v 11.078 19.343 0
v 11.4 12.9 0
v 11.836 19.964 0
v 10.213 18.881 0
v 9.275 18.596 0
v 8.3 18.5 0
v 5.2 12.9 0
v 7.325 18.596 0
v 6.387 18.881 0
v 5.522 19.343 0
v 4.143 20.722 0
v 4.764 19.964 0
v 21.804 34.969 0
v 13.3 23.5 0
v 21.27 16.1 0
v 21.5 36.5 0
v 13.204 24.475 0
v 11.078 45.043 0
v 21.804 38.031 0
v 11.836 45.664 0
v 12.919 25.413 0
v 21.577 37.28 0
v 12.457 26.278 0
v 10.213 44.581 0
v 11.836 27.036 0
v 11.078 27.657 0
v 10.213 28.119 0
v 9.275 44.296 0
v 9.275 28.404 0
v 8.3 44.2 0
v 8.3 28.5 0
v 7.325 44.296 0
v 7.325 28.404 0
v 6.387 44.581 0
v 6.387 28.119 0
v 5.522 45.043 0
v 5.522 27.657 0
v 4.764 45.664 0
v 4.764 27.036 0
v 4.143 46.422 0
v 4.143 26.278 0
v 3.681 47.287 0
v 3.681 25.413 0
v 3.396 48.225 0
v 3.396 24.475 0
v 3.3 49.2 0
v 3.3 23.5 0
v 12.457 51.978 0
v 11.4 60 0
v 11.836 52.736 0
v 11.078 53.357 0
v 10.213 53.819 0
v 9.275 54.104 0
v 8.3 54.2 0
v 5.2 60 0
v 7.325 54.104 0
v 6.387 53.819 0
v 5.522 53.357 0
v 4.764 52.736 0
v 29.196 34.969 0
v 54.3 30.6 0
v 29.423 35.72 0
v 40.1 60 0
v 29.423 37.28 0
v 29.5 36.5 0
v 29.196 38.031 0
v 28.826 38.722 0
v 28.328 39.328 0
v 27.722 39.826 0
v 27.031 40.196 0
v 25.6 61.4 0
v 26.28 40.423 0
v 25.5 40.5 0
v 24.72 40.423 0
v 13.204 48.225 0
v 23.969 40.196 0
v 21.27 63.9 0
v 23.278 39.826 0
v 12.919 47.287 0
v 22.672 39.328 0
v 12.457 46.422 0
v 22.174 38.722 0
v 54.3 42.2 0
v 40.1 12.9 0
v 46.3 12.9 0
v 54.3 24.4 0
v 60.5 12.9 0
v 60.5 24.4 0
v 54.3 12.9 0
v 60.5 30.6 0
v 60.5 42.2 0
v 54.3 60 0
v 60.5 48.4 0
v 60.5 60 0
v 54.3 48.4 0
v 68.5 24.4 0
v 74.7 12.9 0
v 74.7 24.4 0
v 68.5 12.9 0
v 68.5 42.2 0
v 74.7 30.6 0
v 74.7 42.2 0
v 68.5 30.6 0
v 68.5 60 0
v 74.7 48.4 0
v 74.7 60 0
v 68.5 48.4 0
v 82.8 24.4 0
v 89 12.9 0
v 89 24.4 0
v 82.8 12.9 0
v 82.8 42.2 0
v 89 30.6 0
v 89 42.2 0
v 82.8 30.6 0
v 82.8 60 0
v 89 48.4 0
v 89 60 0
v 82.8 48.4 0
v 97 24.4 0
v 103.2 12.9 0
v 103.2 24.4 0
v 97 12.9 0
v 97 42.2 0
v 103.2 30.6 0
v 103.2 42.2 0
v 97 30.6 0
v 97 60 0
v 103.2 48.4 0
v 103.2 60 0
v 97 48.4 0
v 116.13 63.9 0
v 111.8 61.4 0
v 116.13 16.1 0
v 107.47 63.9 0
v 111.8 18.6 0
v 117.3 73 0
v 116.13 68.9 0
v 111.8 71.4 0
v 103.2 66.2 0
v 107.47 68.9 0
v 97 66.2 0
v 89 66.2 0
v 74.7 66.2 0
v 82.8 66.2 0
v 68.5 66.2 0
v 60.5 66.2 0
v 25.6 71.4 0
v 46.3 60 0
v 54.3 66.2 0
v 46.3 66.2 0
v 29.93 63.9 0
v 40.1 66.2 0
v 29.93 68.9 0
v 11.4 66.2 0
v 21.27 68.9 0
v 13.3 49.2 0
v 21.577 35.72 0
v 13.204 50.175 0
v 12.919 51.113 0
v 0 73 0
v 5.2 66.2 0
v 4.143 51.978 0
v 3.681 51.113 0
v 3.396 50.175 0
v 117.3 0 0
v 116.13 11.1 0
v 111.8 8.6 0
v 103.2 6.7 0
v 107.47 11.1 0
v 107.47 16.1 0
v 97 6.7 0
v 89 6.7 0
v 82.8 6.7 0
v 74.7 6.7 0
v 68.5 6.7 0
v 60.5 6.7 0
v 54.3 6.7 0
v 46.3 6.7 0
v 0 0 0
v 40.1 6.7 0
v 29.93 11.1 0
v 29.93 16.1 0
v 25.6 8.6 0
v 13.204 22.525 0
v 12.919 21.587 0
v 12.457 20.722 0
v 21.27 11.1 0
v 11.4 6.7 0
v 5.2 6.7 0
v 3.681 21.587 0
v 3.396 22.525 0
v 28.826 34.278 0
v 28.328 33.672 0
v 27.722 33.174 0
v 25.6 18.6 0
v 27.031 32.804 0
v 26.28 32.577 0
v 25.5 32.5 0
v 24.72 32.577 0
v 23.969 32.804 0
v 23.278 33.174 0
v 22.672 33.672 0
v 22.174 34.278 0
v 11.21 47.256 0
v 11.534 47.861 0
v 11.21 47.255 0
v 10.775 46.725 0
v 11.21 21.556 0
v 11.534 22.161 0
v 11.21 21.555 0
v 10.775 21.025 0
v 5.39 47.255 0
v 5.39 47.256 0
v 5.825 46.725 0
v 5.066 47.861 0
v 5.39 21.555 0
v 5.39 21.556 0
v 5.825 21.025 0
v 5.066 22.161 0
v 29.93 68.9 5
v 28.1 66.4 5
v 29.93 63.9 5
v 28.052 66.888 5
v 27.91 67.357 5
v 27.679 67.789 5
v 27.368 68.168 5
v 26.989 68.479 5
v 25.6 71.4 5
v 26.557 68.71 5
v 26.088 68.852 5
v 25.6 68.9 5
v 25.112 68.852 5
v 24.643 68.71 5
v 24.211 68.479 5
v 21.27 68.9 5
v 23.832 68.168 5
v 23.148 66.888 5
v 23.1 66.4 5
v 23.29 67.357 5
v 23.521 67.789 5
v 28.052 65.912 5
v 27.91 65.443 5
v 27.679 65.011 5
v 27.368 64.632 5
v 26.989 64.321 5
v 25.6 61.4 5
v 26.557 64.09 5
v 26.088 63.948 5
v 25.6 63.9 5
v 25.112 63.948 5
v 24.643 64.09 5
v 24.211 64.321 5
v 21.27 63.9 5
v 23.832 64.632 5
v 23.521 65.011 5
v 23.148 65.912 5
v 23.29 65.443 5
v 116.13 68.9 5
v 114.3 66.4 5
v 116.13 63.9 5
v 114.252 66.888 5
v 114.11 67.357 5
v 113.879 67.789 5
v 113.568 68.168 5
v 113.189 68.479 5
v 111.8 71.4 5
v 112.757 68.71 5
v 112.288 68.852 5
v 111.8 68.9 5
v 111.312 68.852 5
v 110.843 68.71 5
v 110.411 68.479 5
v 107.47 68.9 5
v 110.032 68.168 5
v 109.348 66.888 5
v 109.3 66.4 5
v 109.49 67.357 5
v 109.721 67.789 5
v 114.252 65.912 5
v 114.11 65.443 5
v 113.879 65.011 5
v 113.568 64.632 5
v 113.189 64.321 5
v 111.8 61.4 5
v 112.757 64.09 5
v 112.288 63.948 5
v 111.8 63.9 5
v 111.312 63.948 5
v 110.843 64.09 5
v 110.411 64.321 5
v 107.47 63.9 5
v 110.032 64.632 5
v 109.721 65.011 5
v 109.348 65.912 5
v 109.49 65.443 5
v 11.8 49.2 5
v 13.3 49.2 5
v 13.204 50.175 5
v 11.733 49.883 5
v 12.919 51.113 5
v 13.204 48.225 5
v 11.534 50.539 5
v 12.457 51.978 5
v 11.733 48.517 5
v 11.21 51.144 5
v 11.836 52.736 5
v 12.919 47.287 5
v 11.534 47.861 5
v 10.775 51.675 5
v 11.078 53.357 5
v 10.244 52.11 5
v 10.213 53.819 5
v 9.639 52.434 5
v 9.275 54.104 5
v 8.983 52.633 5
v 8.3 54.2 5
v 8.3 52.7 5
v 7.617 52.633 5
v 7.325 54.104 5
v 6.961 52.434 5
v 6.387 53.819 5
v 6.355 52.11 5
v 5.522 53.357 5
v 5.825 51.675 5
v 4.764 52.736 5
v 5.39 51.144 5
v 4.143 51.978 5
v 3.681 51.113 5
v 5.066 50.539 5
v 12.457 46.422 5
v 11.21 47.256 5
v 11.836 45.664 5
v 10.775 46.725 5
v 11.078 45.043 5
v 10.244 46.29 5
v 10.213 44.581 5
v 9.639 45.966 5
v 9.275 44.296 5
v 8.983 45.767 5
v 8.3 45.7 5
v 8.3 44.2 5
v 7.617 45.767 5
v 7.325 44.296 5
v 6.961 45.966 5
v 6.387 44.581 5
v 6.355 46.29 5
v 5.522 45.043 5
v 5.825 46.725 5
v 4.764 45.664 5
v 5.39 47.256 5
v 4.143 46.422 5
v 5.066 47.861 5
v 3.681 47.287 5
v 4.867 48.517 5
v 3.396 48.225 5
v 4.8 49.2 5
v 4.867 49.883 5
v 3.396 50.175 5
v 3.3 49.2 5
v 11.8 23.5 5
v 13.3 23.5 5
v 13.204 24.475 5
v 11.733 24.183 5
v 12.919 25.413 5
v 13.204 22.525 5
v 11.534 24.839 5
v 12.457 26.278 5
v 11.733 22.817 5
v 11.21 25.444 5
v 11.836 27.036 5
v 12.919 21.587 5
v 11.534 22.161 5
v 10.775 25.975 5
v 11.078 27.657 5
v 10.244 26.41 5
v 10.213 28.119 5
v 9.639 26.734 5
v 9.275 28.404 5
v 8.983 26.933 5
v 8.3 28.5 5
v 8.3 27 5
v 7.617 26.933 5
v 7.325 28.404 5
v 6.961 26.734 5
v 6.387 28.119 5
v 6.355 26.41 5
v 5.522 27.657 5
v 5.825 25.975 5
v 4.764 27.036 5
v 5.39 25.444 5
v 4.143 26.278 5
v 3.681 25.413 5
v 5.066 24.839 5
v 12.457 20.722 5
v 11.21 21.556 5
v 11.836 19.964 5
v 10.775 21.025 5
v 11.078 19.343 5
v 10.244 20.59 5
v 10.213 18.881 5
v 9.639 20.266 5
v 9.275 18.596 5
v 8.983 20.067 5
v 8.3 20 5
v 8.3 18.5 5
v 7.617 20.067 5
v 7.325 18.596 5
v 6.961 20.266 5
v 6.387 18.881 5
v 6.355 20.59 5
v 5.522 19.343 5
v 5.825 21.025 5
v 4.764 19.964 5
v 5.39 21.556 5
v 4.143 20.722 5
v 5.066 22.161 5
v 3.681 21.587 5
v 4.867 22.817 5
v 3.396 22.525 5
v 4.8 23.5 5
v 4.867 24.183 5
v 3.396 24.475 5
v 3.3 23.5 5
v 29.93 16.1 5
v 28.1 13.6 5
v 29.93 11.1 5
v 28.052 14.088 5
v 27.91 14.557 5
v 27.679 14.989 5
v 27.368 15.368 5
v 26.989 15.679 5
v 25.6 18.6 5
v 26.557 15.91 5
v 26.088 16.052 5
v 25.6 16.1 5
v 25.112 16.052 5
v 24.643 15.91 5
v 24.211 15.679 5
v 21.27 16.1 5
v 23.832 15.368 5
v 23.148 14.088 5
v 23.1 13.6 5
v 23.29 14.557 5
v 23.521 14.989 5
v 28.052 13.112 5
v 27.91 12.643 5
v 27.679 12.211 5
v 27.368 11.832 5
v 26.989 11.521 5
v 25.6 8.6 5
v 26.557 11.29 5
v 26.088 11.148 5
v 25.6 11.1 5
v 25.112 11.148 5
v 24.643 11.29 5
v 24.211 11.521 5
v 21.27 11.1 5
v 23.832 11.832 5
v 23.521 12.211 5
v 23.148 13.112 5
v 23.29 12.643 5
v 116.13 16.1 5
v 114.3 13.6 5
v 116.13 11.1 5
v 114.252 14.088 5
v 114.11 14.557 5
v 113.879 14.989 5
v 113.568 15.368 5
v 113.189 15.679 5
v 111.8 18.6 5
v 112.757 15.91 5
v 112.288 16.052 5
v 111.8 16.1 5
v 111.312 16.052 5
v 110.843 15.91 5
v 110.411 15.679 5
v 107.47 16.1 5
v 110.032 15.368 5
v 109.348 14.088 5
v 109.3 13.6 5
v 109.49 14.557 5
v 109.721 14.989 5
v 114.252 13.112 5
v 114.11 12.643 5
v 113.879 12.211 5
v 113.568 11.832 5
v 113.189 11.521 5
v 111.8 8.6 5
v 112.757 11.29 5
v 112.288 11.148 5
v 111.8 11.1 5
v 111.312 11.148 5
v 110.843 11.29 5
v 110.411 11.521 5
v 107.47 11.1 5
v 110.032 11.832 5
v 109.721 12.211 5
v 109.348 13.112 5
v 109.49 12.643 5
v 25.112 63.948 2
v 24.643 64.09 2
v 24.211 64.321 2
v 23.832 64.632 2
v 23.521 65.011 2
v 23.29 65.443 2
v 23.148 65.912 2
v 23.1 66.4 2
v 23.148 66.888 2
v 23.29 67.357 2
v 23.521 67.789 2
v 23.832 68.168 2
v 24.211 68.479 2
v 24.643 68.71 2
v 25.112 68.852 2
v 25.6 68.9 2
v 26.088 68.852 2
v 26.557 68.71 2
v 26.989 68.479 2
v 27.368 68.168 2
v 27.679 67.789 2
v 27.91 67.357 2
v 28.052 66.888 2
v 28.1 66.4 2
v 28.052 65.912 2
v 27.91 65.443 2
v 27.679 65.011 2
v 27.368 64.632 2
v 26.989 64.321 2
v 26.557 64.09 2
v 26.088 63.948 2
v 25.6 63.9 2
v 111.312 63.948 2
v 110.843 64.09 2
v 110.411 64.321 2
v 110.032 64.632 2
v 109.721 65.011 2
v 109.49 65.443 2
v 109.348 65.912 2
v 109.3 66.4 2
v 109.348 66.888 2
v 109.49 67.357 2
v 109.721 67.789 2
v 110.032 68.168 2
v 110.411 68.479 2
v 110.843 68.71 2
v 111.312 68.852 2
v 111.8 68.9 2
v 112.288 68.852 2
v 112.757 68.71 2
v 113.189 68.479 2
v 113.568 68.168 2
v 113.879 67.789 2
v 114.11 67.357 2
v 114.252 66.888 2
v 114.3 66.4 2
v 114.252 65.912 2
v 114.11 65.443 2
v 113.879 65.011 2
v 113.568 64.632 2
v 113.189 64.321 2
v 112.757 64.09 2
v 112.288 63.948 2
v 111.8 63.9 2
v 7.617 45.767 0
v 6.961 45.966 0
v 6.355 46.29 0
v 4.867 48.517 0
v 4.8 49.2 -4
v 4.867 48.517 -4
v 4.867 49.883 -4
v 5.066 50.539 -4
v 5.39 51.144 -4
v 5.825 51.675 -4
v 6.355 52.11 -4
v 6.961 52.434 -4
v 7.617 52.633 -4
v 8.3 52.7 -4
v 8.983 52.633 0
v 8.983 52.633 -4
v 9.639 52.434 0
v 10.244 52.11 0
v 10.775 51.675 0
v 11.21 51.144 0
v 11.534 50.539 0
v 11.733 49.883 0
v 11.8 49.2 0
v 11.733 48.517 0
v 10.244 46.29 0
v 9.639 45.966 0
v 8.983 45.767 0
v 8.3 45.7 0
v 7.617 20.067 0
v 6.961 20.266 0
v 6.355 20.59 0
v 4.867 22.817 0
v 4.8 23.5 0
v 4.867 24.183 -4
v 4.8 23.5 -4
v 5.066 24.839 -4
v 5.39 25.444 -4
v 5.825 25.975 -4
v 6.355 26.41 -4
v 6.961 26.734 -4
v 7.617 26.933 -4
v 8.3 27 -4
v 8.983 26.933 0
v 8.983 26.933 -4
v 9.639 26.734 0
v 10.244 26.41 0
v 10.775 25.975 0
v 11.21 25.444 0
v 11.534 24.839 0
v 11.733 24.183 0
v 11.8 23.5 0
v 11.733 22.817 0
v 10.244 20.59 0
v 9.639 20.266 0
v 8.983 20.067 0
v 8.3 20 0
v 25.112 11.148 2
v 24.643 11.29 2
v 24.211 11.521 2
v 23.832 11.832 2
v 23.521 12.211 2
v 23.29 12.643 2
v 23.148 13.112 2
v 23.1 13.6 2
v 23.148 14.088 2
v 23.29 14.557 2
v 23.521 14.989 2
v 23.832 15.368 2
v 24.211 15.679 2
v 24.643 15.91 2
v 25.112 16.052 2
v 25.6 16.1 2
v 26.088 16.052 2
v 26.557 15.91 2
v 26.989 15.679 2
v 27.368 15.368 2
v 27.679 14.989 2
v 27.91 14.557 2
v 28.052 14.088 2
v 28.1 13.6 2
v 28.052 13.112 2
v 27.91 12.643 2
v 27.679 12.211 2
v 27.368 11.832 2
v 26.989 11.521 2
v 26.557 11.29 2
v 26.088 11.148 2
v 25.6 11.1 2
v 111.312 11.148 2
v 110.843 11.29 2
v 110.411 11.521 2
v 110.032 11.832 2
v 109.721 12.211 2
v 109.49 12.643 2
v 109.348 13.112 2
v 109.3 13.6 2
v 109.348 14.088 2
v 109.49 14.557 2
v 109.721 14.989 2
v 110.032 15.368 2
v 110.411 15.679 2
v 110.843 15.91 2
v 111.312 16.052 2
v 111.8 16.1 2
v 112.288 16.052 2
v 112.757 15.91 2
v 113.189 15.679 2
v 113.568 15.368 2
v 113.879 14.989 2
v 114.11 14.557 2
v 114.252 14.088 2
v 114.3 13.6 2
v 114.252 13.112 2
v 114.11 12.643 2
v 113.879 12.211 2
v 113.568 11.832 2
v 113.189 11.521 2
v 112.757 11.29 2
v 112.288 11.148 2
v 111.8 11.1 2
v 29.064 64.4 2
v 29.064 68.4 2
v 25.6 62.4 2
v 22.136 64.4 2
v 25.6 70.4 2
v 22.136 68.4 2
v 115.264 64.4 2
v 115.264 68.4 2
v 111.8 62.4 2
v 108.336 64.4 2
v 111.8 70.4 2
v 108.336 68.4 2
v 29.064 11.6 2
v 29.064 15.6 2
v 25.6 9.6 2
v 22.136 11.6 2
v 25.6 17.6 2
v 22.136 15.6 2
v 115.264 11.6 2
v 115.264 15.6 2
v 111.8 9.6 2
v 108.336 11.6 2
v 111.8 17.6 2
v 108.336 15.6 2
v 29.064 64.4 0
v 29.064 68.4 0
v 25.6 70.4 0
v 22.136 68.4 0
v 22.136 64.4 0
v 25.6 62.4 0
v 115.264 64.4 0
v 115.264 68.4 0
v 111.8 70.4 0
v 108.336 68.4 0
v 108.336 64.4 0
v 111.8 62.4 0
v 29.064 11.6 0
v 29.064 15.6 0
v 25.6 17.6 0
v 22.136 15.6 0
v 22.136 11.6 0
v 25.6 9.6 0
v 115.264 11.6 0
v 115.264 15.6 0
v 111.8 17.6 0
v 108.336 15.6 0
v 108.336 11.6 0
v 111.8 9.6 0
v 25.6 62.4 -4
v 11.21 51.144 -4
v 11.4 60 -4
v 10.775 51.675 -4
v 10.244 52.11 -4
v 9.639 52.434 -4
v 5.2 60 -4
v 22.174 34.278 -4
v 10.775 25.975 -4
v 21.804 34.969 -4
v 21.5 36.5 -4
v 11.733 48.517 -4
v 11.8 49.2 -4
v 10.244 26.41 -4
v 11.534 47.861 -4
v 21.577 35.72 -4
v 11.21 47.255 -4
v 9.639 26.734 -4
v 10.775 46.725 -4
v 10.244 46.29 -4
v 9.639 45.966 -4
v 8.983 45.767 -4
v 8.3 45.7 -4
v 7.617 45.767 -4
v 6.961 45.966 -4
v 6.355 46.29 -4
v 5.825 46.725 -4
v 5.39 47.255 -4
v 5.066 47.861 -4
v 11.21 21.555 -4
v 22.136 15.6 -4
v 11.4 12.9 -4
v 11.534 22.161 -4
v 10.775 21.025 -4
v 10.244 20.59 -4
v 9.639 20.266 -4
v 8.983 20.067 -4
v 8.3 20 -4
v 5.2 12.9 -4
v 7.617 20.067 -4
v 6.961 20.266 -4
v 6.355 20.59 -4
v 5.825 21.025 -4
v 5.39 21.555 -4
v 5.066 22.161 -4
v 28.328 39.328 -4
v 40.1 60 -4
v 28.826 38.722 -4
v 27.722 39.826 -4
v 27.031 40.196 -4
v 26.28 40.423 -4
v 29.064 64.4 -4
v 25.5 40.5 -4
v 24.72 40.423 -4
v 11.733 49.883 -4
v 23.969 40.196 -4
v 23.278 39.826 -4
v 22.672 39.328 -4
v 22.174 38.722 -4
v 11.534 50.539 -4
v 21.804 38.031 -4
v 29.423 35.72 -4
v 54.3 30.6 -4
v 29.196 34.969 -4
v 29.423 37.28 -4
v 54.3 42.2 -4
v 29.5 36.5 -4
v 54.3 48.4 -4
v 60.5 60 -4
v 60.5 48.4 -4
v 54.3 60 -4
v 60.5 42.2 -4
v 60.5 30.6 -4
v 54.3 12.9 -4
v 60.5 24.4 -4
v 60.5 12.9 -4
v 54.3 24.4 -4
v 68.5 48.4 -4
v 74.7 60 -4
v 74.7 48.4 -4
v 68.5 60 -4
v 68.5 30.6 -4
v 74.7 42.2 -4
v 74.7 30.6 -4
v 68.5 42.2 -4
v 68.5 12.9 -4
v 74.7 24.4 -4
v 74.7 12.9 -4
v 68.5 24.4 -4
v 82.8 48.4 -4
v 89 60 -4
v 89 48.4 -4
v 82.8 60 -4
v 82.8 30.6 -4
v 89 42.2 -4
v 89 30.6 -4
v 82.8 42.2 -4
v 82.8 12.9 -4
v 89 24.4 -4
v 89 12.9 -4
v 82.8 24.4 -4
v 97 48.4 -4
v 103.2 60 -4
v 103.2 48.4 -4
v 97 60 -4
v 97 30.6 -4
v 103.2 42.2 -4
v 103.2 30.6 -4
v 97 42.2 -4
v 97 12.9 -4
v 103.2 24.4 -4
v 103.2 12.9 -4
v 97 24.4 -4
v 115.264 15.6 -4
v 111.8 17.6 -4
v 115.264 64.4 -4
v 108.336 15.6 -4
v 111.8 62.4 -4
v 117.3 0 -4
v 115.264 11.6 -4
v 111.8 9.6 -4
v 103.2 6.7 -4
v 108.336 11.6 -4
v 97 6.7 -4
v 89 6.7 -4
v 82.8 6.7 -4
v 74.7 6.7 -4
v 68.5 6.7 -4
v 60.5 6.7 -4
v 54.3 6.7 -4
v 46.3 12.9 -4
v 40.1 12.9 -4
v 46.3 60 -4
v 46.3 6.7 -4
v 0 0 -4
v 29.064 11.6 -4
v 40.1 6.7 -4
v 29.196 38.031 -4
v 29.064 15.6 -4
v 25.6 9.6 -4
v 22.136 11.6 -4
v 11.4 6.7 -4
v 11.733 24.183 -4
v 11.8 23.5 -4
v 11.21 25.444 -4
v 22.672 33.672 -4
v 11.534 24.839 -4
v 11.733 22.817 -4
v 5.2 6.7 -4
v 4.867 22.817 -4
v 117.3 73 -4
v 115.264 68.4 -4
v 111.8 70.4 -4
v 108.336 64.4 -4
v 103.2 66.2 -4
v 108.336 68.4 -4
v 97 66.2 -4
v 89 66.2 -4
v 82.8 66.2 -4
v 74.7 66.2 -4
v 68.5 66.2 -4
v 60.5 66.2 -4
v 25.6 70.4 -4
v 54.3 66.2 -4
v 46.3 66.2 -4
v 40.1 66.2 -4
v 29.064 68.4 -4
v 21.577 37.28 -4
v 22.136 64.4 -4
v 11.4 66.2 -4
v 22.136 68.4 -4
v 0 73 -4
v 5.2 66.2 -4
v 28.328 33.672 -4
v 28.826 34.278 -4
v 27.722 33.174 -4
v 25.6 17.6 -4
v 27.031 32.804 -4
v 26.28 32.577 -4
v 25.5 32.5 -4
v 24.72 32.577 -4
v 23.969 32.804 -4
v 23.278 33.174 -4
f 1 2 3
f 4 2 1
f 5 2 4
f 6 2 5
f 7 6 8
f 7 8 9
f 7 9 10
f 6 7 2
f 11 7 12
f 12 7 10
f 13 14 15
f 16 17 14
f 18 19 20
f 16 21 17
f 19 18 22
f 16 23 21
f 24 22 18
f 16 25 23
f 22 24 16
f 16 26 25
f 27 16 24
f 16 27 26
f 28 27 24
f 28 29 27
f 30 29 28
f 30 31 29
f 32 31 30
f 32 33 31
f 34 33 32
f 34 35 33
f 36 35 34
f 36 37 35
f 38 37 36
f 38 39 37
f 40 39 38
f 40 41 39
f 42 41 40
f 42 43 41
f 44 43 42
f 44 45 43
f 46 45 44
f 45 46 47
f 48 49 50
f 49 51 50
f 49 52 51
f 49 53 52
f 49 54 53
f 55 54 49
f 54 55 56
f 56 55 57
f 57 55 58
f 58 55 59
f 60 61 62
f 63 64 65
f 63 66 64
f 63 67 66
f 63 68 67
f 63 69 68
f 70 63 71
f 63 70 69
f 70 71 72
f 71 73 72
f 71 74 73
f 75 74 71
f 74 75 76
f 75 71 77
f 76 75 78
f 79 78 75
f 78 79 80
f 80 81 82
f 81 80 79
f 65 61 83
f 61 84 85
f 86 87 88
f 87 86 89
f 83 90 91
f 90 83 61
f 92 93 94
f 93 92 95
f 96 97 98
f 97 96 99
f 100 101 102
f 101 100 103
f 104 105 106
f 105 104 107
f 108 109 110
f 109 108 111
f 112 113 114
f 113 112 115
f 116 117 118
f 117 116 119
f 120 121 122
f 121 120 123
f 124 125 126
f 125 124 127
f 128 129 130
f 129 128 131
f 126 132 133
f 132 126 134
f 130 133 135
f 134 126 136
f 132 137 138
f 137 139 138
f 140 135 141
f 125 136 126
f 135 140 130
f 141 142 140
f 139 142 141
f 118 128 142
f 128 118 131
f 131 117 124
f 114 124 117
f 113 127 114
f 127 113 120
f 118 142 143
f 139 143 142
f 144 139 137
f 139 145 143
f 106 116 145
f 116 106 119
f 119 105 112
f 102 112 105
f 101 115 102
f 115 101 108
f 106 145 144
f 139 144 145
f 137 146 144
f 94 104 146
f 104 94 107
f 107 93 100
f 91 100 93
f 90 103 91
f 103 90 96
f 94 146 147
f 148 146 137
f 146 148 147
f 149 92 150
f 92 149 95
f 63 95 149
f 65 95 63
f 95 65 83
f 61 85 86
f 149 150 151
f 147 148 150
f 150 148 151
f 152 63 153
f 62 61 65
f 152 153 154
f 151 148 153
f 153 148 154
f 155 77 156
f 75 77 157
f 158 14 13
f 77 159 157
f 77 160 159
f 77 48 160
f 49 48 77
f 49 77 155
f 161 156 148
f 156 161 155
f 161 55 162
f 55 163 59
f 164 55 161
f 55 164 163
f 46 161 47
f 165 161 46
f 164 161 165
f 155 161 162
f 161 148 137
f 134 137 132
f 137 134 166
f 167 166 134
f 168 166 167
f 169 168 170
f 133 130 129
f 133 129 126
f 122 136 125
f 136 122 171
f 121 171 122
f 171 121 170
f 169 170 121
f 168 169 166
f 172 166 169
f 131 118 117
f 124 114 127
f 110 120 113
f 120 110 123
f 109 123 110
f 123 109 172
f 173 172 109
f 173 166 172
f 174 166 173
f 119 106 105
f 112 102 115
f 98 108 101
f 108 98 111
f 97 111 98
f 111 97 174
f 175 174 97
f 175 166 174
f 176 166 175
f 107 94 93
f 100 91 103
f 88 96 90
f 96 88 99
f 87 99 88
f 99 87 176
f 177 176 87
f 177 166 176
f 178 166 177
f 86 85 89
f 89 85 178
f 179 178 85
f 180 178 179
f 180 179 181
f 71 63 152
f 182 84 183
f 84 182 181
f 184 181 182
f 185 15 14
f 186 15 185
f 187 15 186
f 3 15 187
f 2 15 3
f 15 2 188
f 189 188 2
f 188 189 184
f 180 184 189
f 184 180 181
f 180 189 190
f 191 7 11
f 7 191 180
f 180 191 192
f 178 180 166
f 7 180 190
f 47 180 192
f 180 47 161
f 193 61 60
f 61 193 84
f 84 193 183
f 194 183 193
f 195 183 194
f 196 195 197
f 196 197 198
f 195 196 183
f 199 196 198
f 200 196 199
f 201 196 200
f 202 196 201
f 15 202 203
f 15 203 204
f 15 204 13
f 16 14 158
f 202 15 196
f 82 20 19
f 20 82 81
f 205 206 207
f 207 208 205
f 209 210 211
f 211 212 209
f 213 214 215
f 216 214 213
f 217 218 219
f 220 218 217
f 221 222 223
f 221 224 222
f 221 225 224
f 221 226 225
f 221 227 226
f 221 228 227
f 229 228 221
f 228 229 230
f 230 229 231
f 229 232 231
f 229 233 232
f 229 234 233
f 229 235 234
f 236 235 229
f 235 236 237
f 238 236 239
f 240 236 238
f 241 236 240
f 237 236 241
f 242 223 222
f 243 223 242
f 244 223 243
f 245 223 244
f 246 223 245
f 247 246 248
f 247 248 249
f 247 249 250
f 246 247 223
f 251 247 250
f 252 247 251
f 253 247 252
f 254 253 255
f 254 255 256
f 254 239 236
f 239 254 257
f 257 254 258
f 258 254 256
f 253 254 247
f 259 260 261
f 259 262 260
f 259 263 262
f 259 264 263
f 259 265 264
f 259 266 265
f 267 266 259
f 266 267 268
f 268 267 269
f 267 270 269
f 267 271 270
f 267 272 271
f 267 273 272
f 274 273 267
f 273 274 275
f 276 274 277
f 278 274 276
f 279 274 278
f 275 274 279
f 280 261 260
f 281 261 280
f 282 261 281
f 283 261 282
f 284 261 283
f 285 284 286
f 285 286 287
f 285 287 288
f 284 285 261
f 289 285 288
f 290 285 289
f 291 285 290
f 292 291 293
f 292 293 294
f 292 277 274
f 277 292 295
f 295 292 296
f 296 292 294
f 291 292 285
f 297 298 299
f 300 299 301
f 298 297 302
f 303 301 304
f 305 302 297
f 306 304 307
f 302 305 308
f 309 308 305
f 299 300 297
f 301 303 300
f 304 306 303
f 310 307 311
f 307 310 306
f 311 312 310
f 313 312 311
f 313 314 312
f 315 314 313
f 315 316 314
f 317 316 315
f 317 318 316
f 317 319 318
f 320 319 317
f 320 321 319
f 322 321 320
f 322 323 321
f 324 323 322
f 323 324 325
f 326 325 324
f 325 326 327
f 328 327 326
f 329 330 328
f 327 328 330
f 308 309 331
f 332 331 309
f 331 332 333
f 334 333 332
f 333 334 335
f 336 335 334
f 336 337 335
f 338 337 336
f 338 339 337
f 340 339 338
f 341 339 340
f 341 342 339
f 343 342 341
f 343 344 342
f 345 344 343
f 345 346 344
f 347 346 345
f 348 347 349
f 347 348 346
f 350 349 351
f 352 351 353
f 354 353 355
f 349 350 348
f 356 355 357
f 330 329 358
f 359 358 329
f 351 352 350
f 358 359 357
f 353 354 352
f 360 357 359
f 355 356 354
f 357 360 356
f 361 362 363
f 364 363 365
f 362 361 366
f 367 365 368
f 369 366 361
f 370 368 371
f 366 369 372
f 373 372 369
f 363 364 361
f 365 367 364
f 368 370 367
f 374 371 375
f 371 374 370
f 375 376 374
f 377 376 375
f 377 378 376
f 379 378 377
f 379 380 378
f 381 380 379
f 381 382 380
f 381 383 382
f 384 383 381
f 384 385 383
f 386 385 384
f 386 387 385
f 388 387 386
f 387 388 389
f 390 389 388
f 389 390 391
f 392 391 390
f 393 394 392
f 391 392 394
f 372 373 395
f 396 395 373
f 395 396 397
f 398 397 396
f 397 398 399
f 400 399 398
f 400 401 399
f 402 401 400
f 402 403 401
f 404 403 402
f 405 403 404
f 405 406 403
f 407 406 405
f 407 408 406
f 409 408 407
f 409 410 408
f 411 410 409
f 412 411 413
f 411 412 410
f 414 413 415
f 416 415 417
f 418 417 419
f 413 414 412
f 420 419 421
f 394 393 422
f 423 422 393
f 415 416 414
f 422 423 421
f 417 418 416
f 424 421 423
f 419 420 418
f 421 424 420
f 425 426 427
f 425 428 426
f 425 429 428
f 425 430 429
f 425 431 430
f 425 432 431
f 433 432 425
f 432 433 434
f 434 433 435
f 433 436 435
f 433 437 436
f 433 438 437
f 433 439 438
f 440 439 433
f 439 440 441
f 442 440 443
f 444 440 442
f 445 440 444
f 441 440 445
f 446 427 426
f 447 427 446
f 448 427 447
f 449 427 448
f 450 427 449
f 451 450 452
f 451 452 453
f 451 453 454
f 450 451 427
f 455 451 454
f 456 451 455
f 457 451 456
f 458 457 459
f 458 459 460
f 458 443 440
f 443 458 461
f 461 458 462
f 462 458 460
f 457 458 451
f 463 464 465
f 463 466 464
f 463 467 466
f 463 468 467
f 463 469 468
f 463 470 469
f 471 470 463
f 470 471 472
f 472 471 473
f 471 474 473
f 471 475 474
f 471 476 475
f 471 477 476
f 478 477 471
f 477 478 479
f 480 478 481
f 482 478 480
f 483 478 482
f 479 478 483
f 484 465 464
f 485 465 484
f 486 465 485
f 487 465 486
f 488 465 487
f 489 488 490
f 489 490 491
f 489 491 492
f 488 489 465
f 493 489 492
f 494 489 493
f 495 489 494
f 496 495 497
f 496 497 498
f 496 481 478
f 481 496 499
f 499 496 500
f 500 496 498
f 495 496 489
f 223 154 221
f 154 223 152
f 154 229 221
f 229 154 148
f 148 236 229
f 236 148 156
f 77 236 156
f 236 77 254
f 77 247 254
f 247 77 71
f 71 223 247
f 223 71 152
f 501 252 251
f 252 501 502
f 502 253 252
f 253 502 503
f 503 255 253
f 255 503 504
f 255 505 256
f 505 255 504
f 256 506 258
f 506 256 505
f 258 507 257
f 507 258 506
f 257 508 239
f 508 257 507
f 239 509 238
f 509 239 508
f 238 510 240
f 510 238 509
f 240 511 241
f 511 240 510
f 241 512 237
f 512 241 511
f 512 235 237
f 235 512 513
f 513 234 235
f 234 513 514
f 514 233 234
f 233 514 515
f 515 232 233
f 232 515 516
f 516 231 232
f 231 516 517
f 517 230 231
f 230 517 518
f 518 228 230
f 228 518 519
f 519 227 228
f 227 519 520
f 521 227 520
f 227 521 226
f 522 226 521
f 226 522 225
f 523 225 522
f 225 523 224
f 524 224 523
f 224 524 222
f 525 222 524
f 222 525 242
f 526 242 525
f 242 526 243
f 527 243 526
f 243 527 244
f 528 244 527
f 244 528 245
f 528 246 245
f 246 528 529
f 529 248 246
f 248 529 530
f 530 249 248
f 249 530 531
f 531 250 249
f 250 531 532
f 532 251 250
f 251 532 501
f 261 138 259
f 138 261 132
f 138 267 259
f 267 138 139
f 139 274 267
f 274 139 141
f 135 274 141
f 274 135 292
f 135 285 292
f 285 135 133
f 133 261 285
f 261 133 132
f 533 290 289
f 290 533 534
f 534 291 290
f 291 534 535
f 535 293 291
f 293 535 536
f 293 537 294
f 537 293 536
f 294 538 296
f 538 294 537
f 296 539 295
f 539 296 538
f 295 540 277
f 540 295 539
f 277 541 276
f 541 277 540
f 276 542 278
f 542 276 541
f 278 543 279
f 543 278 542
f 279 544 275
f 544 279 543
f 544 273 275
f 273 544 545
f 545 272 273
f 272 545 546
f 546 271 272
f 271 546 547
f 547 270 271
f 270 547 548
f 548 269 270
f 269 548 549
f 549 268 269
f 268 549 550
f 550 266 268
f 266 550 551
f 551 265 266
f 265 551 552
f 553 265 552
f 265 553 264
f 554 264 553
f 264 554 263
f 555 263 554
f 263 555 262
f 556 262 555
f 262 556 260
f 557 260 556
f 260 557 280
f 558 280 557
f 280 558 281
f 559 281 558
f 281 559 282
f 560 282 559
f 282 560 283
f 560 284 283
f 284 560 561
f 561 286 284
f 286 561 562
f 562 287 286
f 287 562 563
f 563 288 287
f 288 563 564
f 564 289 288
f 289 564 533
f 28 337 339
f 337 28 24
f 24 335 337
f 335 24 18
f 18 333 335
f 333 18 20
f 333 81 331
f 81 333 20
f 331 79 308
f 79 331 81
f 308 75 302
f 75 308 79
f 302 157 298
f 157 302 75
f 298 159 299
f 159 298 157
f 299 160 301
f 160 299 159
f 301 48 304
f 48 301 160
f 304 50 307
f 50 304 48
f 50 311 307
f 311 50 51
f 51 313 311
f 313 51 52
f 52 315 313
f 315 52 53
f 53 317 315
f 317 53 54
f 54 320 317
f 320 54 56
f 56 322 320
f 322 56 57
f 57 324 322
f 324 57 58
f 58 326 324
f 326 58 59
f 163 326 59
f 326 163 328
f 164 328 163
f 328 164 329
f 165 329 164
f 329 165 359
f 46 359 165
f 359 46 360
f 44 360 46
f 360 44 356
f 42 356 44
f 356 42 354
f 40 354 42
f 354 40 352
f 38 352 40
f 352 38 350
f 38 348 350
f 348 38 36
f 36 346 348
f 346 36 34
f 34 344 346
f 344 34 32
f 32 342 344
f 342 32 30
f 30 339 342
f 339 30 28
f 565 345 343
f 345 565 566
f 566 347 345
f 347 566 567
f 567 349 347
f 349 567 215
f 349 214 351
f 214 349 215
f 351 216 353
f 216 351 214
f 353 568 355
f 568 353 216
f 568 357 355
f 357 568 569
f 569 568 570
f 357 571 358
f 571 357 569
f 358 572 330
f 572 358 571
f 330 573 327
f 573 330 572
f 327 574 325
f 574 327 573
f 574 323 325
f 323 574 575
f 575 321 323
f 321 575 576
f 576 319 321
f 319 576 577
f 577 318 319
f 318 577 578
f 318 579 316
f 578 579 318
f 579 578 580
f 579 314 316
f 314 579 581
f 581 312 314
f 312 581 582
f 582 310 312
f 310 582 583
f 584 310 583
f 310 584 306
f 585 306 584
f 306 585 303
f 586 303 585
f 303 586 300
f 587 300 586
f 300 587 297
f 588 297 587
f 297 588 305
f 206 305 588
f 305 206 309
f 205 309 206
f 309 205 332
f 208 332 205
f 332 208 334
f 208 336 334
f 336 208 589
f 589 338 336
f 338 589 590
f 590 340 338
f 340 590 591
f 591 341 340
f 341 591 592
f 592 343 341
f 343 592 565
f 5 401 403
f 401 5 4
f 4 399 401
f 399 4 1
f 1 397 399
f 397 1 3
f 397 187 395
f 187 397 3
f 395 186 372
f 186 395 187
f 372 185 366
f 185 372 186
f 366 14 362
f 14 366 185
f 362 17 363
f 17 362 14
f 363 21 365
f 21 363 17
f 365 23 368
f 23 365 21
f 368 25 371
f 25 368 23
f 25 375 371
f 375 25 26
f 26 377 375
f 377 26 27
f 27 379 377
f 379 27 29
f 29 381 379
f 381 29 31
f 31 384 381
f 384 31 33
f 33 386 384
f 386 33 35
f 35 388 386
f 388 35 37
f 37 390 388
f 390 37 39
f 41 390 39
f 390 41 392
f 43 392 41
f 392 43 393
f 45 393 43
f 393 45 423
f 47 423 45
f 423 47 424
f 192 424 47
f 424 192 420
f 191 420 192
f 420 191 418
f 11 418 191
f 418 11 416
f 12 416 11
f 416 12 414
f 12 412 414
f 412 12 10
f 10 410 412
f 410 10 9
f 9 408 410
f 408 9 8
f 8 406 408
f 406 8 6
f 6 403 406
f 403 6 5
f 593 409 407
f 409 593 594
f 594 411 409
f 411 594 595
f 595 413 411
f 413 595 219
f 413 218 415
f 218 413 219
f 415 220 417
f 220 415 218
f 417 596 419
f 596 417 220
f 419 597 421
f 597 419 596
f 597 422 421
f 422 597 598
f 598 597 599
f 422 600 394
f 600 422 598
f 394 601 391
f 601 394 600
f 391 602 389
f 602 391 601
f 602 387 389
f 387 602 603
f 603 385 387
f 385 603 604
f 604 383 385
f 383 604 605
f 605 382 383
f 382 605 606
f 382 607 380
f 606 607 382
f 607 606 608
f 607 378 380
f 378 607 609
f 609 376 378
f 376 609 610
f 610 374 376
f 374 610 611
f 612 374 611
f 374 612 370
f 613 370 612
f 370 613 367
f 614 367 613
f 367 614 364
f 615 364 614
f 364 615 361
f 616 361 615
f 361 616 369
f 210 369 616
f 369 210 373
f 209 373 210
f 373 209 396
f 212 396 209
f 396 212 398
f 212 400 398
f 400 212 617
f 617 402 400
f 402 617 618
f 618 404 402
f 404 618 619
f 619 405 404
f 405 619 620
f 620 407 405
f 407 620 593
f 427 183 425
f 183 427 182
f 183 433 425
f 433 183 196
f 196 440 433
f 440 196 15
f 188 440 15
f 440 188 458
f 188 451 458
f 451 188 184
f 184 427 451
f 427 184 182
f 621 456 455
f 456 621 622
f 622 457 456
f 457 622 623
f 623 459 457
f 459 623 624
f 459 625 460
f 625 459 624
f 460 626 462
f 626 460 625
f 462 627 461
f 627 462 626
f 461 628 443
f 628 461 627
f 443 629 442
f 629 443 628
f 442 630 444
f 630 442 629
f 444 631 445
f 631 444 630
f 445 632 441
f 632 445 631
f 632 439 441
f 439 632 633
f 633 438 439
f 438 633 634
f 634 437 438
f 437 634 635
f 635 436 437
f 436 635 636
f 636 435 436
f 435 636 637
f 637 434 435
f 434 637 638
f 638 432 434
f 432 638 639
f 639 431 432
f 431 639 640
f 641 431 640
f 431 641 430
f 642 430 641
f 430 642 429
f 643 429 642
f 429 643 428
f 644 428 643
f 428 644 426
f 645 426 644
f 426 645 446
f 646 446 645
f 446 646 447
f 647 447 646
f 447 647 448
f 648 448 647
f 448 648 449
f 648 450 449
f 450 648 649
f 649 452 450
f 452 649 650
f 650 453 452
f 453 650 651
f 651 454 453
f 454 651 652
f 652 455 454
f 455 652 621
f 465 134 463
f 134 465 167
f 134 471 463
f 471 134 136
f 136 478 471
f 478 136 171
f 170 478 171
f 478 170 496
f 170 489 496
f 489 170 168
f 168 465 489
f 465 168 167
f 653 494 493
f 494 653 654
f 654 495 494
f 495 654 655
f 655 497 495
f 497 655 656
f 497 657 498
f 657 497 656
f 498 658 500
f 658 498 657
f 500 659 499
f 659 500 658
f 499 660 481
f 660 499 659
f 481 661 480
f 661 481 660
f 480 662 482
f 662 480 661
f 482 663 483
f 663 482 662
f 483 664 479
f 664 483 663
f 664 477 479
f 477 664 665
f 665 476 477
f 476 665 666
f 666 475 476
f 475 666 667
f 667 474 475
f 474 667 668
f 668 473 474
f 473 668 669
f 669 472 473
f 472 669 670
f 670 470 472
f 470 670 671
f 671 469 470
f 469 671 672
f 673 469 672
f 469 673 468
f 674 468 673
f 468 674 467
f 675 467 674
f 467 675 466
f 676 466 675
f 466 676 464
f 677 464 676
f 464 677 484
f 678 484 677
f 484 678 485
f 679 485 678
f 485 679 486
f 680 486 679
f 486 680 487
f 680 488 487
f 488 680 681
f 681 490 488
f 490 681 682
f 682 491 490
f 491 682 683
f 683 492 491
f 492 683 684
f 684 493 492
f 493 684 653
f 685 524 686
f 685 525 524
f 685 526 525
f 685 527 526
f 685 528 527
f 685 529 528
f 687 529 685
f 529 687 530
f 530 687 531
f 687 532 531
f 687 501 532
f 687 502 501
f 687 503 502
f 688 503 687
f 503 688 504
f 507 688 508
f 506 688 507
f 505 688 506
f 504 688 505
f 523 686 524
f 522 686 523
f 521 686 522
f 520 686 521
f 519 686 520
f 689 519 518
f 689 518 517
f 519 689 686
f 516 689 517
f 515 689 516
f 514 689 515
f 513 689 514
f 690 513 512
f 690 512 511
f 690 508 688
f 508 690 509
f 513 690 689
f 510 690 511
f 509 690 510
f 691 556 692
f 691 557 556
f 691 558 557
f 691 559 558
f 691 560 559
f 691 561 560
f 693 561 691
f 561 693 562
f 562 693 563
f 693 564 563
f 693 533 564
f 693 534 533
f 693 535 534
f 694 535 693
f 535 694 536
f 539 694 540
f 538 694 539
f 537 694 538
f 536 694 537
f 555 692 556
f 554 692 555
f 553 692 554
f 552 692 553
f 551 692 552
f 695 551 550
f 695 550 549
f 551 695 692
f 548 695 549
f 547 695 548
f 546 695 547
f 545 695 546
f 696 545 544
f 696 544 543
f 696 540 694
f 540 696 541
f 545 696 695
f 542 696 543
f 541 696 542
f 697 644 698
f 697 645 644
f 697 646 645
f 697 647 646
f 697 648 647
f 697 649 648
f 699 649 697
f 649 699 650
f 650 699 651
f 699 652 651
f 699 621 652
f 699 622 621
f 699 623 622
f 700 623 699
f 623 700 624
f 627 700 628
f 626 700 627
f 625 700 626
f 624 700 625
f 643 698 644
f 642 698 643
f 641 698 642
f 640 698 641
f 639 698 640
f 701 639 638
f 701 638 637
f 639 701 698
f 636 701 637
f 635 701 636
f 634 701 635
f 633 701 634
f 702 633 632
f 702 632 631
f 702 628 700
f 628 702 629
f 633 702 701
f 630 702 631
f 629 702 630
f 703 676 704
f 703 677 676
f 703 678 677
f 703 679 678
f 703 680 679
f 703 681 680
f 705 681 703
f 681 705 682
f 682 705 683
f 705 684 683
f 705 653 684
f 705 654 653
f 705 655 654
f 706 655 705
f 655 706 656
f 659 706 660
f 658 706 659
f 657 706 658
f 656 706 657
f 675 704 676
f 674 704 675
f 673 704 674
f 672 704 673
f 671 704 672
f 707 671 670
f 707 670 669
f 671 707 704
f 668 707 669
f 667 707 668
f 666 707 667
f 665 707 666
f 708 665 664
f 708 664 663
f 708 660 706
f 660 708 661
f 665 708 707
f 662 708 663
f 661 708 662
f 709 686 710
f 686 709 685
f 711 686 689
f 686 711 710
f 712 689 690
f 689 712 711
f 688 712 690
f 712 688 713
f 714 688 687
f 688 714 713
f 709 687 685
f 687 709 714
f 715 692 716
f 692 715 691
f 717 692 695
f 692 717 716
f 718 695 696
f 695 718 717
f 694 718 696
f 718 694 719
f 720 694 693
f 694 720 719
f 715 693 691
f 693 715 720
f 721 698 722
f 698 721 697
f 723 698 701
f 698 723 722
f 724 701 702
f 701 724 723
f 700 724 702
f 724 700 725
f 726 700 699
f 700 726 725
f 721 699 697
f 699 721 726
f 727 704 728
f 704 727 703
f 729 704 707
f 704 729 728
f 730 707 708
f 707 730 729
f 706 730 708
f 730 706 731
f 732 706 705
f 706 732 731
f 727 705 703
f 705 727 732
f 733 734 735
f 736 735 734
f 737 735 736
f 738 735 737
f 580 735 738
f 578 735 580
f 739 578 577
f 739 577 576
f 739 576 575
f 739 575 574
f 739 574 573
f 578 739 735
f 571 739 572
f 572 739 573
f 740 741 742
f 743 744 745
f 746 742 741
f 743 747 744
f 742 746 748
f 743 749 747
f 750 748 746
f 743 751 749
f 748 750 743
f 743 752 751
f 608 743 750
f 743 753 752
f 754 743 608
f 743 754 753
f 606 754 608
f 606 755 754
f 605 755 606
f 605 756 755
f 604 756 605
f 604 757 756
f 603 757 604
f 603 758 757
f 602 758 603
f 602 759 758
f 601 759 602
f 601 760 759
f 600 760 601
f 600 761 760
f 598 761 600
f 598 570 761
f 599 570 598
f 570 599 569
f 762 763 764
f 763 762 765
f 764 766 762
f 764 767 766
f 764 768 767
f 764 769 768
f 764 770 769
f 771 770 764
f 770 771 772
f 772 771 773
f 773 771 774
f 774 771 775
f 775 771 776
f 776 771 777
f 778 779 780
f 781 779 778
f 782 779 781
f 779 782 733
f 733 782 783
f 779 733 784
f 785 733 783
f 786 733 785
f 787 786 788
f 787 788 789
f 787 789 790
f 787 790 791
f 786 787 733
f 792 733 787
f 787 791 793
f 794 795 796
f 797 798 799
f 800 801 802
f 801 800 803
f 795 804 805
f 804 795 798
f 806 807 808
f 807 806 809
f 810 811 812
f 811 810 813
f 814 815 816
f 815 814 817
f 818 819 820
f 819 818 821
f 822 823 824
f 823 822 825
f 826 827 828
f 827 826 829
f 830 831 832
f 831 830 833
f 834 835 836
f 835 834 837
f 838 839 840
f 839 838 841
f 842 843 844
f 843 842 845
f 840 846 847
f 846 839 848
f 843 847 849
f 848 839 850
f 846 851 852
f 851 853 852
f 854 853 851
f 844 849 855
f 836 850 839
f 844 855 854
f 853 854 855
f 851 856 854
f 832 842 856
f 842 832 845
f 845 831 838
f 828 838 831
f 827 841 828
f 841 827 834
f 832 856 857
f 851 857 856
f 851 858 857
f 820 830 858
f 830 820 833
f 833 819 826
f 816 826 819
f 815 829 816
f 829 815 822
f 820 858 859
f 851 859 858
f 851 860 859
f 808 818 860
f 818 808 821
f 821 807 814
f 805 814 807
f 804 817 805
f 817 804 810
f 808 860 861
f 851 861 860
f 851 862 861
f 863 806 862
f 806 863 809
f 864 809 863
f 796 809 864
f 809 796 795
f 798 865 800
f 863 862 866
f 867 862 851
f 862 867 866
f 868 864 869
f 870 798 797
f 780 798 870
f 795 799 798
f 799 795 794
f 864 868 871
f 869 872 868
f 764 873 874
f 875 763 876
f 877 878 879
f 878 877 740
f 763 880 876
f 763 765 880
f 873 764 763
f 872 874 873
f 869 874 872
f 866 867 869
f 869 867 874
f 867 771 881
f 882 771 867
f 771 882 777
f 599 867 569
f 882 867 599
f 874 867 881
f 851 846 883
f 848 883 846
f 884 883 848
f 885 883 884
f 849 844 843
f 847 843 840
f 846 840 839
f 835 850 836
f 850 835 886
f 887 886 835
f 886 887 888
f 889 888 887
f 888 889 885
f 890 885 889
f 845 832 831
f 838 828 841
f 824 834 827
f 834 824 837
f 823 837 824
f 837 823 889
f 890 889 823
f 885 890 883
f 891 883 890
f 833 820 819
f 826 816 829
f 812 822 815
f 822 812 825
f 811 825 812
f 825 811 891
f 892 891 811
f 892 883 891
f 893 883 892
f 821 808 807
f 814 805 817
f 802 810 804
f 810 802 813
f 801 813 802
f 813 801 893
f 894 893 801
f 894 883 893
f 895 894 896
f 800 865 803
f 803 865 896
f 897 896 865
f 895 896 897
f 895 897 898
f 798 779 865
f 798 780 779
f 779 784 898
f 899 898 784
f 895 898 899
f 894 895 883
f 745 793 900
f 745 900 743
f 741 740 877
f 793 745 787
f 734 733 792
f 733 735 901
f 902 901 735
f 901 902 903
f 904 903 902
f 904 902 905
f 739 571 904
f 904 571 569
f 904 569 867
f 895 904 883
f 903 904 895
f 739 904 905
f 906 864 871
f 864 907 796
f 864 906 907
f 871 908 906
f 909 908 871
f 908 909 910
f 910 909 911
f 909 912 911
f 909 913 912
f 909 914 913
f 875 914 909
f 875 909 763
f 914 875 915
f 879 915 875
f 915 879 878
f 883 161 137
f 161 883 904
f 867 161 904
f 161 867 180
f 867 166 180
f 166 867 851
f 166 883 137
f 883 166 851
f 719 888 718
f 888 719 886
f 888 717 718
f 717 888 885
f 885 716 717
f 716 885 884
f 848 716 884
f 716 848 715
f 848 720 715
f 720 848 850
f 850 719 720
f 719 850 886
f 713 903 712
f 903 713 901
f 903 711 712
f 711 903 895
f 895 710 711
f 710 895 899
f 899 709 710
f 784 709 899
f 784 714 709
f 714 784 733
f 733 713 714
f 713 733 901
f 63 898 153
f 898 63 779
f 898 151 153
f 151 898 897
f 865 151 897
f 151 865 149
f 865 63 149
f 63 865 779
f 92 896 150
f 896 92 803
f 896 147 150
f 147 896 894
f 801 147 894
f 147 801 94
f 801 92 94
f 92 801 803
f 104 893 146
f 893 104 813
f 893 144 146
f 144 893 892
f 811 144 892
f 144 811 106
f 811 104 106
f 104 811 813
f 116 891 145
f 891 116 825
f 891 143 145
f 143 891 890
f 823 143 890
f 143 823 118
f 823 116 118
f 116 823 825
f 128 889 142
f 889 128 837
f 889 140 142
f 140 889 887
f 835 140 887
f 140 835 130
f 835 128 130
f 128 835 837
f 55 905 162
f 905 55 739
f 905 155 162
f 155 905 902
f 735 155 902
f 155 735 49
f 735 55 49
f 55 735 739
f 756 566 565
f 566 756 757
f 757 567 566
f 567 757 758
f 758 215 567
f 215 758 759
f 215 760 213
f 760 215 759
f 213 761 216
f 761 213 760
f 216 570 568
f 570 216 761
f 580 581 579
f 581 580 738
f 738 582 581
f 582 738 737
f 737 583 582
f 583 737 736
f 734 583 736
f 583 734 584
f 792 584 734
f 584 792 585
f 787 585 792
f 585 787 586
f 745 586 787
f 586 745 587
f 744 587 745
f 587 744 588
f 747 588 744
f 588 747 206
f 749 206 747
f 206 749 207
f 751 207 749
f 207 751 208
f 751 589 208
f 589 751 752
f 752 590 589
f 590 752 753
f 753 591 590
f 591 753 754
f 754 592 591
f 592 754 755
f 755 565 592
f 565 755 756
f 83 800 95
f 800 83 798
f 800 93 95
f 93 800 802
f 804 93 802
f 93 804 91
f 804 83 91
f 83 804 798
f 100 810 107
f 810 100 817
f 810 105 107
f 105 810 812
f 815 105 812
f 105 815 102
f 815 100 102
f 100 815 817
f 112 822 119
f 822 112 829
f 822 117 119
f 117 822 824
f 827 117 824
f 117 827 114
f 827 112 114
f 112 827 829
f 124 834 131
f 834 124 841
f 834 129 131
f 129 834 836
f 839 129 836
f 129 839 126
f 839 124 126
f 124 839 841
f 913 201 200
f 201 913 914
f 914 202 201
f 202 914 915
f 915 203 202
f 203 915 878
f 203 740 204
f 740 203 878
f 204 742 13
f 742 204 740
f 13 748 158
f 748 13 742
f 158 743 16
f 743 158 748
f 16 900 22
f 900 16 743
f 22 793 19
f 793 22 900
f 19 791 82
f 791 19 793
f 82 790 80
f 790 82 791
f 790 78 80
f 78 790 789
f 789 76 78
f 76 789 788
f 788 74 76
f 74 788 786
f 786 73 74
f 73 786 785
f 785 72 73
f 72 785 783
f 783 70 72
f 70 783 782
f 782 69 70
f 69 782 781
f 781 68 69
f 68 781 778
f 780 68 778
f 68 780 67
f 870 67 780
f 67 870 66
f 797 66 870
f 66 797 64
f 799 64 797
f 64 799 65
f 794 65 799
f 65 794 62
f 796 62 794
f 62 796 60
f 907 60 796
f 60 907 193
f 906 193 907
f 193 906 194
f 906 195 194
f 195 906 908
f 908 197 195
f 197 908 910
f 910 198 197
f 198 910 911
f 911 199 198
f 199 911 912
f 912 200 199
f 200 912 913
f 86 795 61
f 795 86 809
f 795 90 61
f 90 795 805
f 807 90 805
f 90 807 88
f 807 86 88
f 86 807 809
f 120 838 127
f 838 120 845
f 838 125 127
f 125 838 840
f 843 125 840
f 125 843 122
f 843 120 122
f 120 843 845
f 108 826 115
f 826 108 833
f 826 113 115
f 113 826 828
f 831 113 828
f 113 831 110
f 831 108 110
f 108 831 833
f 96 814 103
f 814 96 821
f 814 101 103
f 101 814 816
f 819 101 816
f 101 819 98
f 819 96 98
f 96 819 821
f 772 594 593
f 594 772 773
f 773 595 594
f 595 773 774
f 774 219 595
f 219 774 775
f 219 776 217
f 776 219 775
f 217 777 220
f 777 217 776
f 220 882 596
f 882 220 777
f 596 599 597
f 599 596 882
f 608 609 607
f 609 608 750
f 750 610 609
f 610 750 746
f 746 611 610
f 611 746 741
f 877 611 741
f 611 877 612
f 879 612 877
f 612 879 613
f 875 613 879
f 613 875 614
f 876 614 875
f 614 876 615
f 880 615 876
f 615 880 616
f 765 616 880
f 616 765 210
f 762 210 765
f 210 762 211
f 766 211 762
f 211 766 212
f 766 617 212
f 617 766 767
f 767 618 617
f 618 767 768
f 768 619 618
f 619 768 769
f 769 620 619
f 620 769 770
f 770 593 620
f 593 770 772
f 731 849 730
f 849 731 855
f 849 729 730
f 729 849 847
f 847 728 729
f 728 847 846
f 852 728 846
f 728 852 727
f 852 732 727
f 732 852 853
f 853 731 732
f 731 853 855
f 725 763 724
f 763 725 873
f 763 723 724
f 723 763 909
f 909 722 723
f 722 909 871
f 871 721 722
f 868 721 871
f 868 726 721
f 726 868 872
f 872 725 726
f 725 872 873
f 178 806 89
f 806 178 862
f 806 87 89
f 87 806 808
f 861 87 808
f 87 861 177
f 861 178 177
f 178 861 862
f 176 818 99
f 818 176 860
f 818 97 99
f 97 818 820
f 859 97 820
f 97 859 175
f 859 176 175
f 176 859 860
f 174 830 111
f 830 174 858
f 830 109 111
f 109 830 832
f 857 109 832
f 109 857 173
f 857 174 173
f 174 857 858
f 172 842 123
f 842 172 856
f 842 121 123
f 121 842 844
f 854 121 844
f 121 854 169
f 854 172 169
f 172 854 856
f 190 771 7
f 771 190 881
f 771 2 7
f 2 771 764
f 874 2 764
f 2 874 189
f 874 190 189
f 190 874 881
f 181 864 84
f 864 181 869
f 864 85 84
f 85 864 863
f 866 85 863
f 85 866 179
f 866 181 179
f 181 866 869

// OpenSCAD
$fn = 32;

module hexagon(point_to_point=4) {
    rotate(30, [0, 0, 1])
        circle(point_to_point, $fn=6);
}

module Post(Width=5) {
    difference() {
        hexagon(Width);
        circle(2.5); // 5mm diamter
    }
}

module front_panel_plate() {
    union() {

        PlateThickness = 4;
        
        AltCols = [8.3, 43.2];
        LEDRows = [23.5, 49.2];
        MountingCols = [25.6, 111.8];
        MountingRows = [13.6, 66.4];

        difference() {
            PostHeight = 5;
            linear_extrude(PostHeight)
                union() {
                    // Mounting Posts
                    for (MountingCol = MountingCols) {
                        for (MountingRow = MountingRows) {
                            translate([MountingCol, MountingRow])
                                Post();
                        }
                    }
                    
                    // LED Posts
                    for (LEDRow = LEDRows) {
                        translate([AltCols[0], LEDRow])
                            difference() {
                                circle(5); // 10mm diameter
                                circle(3.5); // 7mm diameter
                            }
                    }
                }
            linear_extrude(2)
                union() {
                    for (MountingCol = MountingCols) {
                        for (MountingRow = MountingRows) {
                            translate([MountingCol, MountingRow])
                                Post(4);
                        }
                    }
                }
        }
        
        translate([0, 0, -PlateThickness])
            linear_extrude(PlateThickness)
                difference() {

                    // Main Plate
                    TotalHeight = 73;
                    TotalWidth = 117.3;
                    square([TotalWidth, TotalHeight]);
                    
                    union() {

                        // Mounting Holes
                        for (MountingCol = MountingCols) {
                            for (MountingRow = MountingRows) {
                                translate([MountingCol, MountingRow])
                                    hexagon();
                            }
                        }

                        // Rotary Encoder Cut-Out
                        translate([25.5, 36.5])
                            circle(4); // 8mm  Diameter
                        
                        // Main Keypad Matrix
                        ButtonHole = 6.2;
                        rows = [63.1, 45.3, 27.5, 9.8];
                        cols = [57.4, 71.6, 85.9, 100.1];
                        for (row = rows) {
                            for (col = cols) {
                                translate([col, row])
                                    square(ButtonHole, center=true);
                            }
                        }

                        // Secondary Buttons
                        
                        for (AltCol = AltCols) {
                            translate([AltCol, rows[0]])
                                square(ButtonHole, center=true);
                            translate([AltCol, rows[3]])
                                square(ButtonHole, center=true);
                        }

                        
                        // LED Cut-Outs
                        LEDHole = 3.5;
                        for (LEDRow = LEDRows) {
                            translate([AltCols[0], LEDRow])
                                circle(LEDHole);
                        }
                    }
                }
    }
}

front_panel_plate();
